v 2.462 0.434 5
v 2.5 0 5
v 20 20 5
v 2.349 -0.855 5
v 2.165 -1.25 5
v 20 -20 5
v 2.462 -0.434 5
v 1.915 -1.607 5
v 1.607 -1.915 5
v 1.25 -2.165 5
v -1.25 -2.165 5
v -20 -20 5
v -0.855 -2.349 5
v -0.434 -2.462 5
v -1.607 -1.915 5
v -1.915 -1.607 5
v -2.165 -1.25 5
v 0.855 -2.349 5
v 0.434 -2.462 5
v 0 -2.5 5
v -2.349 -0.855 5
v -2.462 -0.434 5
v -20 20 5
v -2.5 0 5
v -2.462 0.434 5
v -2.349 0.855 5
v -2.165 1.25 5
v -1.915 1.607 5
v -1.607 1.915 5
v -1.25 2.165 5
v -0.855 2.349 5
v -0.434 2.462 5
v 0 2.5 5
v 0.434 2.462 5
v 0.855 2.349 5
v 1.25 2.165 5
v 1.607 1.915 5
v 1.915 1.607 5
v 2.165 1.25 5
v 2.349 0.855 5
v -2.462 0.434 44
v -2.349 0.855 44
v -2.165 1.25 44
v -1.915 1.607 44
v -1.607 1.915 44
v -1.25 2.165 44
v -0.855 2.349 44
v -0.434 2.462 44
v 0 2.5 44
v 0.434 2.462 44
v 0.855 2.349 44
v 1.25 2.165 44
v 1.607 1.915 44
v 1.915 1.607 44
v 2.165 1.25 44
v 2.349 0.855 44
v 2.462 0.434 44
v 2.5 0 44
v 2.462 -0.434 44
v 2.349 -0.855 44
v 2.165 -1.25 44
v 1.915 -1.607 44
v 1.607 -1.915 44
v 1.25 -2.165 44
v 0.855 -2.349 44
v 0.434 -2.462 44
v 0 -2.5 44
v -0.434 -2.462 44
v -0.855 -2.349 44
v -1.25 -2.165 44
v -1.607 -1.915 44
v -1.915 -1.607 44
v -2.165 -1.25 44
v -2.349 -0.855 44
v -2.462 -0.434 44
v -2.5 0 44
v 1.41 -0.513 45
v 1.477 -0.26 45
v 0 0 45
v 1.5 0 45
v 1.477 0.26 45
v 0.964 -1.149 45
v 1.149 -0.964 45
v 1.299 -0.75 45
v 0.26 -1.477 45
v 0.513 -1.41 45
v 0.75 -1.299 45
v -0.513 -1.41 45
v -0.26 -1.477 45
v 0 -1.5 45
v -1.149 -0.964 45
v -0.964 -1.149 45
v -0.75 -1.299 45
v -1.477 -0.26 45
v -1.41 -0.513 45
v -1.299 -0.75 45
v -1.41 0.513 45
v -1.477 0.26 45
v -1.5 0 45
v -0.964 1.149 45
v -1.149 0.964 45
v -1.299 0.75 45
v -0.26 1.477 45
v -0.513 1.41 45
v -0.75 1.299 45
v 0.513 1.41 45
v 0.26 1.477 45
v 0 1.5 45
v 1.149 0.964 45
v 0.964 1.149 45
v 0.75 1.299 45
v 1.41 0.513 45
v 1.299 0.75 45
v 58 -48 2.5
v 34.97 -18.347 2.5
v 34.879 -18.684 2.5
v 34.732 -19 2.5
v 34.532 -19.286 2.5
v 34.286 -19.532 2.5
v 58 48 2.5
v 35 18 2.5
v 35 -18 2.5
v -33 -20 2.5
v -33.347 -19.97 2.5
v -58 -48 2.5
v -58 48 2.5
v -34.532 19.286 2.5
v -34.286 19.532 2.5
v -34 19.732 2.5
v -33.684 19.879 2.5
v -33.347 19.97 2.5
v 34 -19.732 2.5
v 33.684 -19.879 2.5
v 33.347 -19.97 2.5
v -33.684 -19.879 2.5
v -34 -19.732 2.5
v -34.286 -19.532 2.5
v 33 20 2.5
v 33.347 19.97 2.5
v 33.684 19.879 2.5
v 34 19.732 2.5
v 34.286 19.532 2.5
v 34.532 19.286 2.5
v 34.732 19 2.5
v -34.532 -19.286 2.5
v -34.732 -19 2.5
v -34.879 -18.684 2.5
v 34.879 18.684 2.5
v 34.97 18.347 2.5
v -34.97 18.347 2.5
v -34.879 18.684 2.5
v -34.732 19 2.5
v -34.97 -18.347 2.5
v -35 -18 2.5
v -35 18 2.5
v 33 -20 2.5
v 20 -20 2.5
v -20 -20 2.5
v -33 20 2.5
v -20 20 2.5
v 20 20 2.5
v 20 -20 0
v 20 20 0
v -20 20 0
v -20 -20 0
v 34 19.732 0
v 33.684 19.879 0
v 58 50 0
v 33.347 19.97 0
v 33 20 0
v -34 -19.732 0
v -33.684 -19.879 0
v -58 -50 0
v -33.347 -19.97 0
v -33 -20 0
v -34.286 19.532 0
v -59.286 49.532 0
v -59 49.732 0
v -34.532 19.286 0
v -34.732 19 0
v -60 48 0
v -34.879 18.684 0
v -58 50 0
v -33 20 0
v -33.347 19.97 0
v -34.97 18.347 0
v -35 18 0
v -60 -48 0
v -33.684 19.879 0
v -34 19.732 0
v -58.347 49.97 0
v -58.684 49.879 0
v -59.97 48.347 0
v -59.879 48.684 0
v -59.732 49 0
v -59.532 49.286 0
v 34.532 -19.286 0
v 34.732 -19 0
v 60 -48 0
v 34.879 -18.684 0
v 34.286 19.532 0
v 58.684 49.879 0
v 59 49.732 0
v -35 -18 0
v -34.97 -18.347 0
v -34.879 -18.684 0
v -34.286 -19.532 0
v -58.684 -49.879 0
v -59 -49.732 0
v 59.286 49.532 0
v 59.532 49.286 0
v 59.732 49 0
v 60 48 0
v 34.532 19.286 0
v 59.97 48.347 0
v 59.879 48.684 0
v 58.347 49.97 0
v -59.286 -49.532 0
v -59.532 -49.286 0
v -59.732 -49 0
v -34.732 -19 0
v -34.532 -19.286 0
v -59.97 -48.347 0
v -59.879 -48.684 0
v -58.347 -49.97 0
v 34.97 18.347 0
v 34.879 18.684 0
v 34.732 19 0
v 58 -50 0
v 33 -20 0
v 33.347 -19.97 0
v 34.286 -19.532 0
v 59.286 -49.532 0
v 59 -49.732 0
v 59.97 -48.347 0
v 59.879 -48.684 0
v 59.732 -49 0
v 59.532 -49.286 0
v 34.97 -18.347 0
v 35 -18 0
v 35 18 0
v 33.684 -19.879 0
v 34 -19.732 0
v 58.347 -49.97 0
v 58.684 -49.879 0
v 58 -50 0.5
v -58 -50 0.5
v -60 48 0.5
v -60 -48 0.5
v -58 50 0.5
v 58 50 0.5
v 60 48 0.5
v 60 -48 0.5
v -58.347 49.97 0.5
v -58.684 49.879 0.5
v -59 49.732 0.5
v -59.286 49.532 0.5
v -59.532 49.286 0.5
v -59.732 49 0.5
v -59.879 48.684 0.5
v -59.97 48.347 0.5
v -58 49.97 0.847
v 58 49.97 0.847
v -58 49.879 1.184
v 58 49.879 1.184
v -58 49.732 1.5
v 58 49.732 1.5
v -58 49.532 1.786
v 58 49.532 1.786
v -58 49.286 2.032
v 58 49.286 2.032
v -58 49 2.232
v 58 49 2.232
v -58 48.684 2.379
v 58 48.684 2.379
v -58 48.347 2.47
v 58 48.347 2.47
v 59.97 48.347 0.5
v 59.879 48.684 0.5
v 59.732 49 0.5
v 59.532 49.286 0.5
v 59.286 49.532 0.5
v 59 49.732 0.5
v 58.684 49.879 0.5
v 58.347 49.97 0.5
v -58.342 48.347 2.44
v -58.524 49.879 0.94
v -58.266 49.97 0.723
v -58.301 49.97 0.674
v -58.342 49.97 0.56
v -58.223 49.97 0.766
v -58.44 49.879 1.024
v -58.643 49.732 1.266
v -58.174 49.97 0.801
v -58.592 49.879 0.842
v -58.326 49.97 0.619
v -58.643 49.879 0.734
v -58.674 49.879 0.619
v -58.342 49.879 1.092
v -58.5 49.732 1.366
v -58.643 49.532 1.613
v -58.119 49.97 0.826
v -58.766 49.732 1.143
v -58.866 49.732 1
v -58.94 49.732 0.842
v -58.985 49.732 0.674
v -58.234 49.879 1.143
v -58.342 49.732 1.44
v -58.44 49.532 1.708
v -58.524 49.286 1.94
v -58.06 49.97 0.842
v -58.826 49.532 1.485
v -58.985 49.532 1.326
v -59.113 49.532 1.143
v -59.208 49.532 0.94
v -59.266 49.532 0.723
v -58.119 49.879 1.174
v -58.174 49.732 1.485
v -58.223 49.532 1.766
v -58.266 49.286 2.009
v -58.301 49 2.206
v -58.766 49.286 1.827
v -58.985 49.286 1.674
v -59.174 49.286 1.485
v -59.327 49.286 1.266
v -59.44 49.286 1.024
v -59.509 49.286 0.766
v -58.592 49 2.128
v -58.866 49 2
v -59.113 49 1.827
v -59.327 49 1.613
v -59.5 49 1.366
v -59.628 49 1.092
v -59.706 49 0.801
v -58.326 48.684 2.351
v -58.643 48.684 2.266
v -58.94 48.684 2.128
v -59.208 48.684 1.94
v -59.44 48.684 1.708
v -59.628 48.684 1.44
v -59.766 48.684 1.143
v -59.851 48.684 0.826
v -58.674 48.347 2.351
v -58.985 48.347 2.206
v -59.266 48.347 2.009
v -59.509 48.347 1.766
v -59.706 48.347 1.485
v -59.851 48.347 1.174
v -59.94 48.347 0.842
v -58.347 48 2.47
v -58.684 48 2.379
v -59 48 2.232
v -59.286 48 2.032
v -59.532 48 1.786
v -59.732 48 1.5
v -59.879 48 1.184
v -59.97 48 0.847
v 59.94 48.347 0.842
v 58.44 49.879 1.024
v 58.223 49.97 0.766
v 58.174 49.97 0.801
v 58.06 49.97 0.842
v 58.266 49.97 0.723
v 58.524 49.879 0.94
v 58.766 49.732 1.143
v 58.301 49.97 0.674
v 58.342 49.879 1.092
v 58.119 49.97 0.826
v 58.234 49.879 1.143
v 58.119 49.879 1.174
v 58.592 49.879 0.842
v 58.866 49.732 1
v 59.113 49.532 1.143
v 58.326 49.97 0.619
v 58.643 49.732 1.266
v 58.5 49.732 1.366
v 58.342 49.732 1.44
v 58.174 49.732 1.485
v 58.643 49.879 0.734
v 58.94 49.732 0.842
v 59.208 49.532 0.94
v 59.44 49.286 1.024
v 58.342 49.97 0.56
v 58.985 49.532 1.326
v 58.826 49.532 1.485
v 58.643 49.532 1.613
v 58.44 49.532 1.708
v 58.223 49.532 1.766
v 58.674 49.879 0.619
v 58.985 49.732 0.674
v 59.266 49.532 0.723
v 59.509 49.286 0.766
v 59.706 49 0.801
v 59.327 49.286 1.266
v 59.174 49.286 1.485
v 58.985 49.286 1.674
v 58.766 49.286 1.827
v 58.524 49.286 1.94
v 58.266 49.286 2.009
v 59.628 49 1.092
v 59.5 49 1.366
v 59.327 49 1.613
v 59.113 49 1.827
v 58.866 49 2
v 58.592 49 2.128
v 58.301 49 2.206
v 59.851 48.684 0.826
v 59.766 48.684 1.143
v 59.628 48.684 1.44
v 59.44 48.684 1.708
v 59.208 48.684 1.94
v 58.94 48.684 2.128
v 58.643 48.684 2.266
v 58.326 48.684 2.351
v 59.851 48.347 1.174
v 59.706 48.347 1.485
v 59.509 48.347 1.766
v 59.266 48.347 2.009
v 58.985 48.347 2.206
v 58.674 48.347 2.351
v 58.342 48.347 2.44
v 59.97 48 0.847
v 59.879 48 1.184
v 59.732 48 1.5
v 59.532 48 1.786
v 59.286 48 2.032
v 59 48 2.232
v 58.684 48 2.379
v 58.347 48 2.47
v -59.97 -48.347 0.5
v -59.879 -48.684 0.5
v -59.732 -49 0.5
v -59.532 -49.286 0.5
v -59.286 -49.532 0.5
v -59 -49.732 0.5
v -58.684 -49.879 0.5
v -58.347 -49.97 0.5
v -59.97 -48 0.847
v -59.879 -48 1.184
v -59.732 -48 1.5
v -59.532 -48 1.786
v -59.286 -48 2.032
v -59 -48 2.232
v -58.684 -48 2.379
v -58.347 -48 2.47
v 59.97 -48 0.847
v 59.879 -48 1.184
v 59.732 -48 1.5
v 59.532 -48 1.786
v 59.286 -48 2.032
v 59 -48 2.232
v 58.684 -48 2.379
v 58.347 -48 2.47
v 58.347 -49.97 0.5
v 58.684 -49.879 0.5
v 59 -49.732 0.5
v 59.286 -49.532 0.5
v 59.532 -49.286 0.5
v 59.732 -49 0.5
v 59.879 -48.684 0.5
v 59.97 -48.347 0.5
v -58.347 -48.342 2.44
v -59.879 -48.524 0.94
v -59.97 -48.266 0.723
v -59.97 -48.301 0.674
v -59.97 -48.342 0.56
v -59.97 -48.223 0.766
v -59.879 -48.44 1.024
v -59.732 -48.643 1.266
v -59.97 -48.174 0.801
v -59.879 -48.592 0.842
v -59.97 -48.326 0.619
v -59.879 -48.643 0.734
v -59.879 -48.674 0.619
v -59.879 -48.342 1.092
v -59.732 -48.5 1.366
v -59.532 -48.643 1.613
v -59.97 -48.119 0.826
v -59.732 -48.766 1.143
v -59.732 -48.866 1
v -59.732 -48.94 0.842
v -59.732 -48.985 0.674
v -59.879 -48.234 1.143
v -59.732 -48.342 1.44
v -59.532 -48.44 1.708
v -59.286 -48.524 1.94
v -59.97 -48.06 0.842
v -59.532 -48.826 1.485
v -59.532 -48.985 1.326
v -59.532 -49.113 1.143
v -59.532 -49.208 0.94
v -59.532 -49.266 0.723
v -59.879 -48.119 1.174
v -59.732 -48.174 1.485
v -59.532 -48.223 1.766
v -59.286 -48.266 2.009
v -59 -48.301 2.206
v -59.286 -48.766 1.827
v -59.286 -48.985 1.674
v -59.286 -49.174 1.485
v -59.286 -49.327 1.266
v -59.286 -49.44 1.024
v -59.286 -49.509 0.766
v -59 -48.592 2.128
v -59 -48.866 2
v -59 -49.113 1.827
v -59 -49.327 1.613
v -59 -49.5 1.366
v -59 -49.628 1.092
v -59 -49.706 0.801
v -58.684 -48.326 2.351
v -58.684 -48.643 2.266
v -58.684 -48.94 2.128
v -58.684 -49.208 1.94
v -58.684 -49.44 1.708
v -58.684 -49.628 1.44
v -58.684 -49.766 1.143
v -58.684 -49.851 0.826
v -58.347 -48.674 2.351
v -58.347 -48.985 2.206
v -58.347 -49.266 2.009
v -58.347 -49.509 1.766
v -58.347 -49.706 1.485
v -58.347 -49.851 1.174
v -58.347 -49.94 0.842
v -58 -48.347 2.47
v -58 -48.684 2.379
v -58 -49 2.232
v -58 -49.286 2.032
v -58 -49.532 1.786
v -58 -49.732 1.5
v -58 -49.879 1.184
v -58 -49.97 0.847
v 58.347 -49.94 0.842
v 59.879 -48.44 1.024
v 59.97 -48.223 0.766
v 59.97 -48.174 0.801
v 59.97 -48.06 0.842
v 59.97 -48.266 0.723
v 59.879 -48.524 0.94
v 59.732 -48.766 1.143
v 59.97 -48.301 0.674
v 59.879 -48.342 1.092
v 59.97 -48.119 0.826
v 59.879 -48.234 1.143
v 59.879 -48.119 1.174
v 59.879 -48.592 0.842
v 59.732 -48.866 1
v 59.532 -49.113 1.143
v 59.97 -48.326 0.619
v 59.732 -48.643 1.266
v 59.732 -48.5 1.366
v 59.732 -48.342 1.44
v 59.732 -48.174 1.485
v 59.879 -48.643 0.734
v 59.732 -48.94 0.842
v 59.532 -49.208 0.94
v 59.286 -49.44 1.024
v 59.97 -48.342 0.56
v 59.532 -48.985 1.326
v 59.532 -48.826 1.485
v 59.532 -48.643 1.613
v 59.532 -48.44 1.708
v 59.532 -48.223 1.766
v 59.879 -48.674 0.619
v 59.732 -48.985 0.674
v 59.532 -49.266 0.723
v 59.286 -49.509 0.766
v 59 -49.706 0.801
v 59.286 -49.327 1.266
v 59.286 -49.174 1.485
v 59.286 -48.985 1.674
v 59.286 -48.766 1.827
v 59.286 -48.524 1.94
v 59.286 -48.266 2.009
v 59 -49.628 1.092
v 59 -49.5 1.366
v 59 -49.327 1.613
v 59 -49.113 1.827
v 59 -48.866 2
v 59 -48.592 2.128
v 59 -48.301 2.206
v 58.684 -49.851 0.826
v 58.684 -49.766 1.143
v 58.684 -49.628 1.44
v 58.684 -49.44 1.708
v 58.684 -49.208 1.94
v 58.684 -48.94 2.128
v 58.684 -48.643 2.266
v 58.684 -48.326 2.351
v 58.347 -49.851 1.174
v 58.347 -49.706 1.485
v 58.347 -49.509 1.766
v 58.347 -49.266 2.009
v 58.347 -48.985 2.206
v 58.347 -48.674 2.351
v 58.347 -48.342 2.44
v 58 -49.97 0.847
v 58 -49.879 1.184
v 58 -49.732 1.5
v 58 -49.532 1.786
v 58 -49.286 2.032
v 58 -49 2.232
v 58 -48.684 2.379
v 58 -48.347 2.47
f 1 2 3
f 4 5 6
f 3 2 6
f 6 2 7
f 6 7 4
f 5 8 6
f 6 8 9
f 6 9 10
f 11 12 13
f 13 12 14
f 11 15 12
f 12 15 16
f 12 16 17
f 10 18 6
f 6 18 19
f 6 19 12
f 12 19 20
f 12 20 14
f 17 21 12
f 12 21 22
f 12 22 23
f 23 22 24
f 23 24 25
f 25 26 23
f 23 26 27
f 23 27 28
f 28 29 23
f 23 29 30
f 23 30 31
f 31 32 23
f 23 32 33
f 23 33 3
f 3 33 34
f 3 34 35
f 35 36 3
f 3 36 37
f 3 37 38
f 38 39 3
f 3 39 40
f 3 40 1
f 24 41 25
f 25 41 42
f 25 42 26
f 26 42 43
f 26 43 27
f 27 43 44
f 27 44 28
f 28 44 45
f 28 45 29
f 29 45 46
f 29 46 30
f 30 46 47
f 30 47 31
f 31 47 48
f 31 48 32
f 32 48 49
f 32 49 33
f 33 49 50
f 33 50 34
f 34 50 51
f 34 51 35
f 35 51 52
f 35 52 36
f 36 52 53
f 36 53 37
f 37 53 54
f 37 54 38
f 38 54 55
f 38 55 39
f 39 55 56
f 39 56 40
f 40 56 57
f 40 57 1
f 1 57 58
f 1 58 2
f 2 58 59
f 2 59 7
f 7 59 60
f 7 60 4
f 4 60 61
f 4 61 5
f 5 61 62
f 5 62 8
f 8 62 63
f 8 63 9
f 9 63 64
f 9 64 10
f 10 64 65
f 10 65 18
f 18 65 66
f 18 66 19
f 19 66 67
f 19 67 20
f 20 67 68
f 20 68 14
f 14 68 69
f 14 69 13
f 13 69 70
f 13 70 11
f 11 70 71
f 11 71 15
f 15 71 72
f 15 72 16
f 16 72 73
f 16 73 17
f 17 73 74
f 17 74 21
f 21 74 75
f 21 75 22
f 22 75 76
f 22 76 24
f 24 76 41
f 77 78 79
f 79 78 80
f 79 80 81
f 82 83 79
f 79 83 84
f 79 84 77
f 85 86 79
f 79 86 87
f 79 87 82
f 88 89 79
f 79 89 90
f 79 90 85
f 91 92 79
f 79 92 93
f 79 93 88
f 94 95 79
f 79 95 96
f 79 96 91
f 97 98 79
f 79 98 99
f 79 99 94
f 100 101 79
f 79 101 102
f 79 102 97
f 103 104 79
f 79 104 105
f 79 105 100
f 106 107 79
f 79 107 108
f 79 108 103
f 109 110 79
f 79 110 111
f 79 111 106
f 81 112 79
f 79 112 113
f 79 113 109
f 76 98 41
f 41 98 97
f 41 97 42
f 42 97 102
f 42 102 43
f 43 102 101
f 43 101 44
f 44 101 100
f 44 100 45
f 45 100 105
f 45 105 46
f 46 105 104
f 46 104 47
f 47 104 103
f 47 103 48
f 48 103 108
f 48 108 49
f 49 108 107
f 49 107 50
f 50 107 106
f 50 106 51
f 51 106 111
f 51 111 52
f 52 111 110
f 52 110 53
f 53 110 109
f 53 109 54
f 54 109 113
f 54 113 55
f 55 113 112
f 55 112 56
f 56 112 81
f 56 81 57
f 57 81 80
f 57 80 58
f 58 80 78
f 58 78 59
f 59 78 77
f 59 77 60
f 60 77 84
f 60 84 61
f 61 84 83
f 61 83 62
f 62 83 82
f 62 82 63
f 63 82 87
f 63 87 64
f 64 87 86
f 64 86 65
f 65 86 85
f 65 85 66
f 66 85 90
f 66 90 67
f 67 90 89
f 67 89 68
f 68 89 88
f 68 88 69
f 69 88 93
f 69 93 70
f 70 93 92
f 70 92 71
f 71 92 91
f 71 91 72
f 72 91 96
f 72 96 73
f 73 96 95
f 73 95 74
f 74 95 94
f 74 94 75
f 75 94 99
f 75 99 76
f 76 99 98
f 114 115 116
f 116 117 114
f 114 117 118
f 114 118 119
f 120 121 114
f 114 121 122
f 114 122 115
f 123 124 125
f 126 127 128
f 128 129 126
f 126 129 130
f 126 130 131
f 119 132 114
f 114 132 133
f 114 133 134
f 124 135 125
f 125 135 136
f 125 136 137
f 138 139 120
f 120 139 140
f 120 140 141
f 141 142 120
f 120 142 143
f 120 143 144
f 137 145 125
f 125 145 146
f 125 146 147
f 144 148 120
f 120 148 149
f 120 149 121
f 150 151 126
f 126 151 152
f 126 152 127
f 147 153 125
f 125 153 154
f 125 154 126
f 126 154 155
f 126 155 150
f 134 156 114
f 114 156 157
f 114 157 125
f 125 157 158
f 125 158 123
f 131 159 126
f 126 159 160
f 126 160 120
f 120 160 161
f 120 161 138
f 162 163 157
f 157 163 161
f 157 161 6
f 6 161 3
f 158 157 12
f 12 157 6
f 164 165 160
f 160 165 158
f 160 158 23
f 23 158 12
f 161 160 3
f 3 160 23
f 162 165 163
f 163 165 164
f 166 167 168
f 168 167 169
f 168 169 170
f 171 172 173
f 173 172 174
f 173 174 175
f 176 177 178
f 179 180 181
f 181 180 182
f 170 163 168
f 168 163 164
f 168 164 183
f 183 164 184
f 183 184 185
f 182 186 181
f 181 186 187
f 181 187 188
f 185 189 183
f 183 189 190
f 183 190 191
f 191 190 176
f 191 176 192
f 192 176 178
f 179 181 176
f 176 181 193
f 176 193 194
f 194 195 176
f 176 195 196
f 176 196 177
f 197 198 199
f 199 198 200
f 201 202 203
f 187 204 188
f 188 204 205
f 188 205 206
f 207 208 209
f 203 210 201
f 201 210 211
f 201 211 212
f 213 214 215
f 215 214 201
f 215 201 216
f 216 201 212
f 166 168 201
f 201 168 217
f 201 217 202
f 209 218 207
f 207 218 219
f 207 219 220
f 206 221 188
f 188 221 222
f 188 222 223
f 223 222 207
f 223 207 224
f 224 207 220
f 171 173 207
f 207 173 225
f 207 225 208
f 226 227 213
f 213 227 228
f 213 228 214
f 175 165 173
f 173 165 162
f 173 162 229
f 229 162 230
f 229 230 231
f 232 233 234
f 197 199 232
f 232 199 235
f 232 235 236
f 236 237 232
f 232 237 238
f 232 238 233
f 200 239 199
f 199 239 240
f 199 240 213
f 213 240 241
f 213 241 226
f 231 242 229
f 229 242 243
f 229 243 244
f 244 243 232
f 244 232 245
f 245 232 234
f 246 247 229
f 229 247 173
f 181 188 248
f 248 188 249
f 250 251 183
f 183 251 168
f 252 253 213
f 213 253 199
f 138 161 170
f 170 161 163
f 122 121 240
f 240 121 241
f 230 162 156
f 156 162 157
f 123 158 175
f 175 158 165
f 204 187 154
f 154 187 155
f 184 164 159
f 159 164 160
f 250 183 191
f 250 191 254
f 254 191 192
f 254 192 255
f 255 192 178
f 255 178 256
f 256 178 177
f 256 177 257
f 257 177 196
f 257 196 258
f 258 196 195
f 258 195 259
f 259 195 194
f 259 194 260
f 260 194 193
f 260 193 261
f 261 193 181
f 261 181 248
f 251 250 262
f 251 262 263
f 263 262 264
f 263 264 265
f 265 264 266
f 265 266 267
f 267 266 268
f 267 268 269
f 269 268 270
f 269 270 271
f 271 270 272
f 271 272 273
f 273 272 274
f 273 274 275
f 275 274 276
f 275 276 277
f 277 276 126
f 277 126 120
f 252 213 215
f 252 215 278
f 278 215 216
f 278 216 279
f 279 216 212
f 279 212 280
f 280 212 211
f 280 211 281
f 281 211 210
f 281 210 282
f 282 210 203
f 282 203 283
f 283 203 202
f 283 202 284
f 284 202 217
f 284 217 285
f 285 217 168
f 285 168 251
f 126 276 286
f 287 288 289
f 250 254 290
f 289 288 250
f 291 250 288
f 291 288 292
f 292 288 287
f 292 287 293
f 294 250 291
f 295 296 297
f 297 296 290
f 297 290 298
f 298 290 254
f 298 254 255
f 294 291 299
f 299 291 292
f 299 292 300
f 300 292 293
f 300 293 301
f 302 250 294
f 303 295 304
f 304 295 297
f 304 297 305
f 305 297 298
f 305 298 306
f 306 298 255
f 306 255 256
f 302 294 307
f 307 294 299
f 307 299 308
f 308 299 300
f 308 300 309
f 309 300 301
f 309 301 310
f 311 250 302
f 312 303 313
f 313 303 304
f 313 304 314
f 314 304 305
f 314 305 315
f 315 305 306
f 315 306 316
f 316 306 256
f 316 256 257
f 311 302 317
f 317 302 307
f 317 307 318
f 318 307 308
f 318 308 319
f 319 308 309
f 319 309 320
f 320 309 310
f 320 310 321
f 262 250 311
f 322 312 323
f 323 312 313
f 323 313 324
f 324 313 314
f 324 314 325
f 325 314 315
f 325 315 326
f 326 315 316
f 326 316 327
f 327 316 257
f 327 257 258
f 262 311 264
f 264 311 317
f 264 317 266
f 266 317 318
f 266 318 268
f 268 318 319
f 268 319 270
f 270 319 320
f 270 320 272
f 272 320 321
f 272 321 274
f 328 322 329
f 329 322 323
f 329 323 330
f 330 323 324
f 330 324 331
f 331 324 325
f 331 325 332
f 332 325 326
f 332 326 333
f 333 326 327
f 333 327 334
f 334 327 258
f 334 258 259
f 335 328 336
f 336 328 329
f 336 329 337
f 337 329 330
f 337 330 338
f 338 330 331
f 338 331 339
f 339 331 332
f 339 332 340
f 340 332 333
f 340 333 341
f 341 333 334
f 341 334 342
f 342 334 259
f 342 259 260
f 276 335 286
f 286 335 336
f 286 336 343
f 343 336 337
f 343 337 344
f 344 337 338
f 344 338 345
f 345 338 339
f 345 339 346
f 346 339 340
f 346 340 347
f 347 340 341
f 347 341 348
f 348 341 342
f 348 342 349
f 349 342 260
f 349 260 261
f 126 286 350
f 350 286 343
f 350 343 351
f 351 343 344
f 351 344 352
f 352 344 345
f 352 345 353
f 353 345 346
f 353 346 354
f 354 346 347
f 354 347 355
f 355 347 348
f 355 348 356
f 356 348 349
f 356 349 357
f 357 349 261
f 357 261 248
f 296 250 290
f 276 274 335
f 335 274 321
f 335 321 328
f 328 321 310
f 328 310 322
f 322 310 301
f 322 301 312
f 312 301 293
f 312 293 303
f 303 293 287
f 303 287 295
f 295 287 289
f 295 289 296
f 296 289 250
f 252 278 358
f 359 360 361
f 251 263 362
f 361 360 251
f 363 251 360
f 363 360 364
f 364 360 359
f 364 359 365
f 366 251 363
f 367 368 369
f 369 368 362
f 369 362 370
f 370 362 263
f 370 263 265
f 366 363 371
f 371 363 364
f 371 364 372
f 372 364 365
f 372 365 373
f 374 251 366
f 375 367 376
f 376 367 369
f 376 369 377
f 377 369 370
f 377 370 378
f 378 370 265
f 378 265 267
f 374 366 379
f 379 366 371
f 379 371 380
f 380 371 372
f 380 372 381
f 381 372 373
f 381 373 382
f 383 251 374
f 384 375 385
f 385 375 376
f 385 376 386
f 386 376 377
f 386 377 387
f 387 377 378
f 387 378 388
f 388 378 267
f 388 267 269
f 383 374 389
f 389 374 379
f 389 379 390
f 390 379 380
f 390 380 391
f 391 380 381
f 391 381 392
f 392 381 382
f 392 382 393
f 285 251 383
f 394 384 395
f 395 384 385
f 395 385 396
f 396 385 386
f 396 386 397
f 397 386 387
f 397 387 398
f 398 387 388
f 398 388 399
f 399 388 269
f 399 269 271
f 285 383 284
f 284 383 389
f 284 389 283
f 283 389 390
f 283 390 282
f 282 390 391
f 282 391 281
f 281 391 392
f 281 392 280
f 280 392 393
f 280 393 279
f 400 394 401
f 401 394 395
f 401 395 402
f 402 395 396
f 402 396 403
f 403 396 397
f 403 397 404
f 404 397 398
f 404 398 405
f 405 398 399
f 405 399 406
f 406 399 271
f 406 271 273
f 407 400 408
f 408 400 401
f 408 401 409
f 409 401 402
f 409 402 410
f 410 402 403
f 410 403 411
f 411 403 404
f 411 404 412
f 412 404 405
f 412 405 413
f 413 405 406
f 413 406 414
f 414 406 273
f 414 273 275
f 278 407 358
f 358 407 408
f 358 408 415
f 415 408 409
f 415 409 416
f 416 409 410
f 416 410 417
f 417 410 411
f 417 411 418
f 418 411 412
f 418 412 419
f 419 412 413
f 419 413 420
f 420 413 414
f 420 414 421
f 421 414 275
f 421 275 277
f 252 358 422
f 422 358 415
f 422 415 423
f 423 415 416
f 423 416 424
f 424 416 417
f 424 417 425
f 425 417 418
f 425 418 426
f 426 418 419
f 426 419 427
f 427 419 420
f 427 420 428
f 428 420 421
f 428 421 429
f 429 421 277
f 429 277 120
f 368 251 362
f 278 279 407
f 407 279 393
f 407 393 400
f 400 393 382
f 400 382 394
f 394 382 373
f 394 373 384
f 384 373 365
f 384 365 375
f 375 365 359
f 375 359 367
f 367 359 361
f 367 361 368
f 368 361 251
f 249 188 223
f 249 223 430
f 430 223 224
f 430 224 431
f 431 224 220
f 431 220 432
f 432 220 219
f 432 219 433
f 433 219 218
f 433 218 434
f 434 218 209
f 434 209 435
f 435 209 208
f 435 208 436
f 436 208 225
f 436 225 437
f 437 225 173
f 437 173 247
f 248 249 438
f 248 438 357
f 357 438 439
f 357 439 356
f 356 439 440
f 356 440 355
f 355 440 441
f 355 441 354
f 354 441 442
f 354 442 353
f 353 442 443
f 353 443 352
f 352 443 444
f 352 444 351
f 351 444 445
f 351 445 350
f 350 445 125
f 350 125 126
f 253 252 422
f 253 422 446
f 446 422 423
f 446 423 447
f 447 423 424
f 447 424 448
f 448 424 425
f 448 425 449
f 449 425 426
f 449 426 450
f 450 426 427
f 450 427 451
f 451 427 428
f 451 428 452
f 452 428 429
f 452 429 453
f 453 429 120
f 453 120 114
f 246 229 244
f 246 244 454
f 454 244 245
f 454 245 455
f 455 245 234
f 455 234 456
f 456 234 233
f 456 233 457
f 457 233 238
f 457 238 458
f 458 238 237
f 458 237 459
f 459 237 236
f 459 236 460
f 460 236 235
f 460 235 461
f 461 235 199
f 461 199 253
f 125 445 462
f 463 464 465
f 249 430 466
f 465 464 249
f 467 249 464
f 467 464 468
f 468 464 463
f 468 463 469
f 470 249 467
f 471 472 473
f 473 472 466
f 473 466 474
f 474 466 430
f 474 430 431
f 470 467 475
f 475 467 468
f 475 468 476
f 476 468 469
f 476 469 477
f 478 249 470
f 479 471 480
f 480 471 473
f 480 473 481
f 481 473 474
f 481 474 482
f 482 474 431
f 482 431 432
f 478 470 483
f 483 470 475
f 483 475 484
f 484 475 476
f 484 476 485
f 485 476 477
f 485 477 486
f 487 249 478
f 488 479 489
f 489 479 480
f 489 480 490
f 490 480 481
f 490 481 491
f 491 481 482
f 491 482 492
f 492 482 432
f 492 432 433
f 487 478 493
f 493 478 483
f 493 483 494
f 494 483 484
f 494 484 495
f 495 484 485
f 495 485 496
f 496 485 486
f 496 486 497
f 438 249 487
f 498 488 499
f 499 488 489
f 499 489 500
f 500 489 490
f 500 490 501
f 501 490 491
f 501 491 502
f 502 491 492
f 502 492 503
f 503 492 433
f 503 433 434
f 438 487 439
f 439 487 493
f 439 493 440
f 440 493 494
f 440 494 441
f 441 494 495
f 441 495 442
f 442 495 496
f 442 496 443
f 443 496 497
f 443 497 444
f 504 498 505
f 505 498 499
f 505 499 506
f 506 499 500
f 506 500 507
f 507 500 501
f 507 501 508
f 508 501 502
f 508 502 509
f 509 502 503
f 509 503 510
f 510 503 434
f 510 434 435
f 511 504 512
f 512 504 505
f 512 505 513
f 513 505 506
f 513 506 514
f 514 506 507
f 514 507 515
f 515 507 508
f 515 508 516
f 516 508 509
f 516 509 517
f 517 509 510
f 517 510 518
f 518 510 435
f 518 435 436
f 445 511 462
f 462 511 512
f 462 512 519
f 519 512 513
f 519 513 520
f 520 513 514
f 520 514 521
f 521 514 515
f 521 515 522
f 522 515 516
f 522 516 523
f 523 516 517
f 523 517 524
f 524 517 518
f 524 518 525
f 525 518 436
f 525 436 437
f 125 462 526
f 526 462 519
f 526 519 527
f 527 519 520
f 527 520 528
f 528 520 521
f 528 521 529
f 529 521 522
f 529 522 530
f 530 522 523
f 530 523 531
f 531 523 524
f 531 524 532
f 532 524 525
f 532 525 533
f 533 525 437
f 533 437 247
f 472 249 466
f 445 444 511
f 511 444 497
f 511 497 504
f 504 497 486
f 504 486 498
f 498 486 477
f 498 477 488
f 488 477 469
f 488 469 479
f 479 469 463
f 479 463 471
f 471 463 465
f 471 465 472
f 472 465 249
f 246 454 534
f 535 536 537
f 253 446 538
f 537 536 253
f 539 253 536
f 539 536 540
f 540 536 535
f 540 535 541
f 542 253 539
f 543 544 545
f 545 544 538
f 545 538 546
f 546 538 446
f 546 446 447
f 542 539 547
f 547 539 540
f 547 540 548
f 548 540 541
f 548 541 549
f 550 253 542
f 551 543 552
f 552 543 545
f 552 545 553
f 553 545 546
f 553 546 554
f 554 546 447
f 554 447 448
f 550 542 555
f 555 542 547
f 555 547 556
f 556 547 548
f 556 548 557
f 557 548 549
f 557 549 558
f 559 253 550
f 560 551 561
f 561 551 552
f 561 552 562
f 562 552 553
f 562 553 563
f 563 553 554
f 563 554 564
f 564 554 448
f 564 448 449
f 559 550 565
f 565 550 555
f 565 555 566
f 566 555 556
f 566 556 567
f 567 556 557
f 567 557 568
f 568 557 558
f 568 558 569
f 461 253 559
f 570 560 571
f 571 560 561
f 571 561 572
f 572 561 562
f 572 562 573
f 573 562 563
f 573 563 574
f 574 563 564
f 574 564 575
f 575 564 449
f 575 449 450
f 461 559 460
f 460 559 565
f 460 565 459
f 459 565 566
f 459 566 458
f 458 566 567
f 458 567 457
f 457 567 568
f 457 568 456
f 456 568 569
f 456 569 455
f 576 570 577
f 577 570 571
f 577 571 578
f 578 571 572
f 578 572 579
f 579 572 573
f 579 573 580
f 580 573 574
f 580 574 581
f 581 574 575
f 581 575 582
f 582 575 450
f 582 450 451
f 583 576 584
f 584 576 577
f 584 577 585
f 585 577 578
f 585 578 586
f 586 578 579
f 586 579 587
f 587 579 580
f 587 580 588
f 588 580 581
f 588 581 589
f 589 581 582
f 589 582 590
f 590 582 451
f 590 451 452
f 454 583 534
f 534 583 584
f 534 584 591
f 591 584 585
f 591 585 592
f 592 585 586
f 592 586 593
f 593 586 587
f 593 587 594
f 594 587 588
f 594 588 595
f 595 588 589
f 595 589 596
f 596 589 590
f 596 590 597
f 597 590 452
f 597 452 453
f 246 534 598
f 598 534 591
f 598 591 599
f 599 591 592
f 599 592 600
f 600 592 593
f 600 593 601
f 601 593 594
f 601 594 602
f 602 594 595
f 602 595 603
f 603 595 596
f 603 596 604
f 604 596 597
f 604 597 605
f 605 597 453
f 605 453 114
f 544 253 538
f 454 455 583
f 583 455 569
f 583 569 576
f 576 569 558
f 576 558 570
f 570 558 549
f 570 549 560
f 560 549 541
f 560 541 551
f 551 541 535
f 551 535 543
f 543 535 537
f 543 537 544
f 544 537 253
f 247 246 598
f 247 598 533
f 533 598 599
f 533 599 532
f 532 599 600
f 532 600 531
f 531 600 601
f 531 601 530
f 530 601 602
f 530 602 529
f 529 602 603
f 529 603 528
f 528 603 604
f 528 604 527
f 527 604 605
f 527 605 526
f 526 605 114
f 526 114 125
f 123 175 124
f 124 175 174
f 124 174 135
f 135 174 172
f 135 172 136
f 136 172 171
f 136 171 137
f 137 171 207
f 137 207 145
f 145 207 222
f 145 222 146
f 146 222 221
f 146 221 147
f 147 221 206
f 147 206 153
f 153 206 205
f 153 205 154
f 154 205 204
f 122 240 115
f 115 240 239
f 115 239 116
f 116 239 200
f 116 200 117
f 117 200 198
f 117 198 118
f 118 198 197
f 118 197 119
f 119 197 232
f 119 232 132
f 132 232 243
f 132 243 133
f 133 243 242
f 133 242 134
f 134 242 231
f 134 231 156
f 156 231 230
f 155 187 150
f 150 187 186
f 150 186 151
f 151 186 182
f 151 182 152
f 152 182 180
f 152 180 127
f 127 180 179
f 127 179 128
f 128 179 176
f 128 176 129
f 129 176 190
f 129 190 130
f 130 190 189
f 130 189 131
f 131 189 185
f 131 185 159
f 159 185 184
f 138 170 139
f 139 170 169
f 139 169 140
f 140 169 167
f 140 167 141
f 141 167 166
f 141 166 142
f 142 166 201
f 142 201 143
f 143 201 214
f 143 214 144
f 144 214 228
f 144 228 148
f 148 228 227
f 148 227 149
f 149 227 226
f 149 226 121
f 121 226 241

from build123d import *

# Parameters (mm, degrees)
SKETCH1_W           = 120
SKETCH1_H           = 100
SKETCH1_R           = 2.5
BOSS_EXTRUDE1_DEPTH = 5
SKETCH2_R           = 2.5
BOSS_EXTRUDE2_DEPTH = 45
CHAMFER1_SIZE       = 1
SKETCH3_W           = 120
SKETCH3_H           = 100
SKETCH3_W_2         = 40
SKETCH3_H_2         = 40
CUT_EXTRUDE1_DEPTH  = 2.5
SKETCH6_W           = 15
SKETCH6_H           = 40
CUT_EXTRUDE2_DEPTH  = 89.917096219
FILLET1_R           = 2
FILLET2_R           = 2


with BuildPart() as part:
    # Sketch1 → Boss-Extrude1 (new body)
    with BuildSketch(Plane.XY):
        Rectangle(SKETCH1_W, SKETCH1_H)
        Circle(SKETCH1_R, mode=Mode.SUBTRACT)
    extrude(amount=BOSS_EXTRUDE1_DEPTH)

    # Sketch2 → Boss-Extrude2 (add)
    with BuildSketch(Plane.XY):
        with Locations(Location((0, 0, 0), (0, 0, 180))):
            Circle(SKETCH2_R)
    extrude(amount=BOSS_EXTRUDE2_DEPTH)

    # Chamfer1
    chamfer1_edges = [part.edges().sort_by_distance(p)[0] for p in [
        (2.5, 0, 45),
    ]]
    chamfer(chamfer1_edges, length=CHAMFER1_SIZE)

    # Sketch3 → Cut-Extrude1 (cut)
    with BuildSketch(Plane.XY.offset(5)):
        Rectangle(SKETCH3_W, SKETCH3_H)
        Rectangle(SKETCH3_W_2, SKETCH3_H_2, mode=Mode.SUBTRACT)
    extrude(amount=-CUT_EXTRUDE1_DEPTH, mode=Mode.SUBTRACT)

    # Sketch6 → Cut-Extrude2 (cut, through all)
    with BuildSketch(Plane.XY.offset(2.5)):
        with Locations((-27.5, 0)):
            Rectangle(SKETCH6_W, SKETCH6_H)
        with Locations((27.5, 0)):
            Rectangle(SKETCH6_W, SKETCH6_H)
    extrude(amount=-CUT_EXTRUDE2_DEPTH, mode=Mode.SUBTRACT)

    # Fillet1
    fillet1_edges = [part.edges().sort_by_distance(p)[0] for p in [
        (60, -50, 1.25),
        (-60, -50, 1.25),
        (-60, 50, 1.25),
        (60, 50, 1.25),
        (60, 0, 2.5),
        (0, -50, 2.5),
        (-60, 0, 2.5),
        (0, 50, 2.5),
    ]]
    fillet(fillet1_edges, radius=FILLET1_R)

    # Fillet2
    fillet2_edges = [part.edges().sort_by_distance(p)[0] for p in [
        (-35, -20, 1.25),
        (-35, 20, 1.25),
        (35, 20, 1.25),
        (35, -20, 1.25),
    ]]
    fillet(fillet2_edges, radius=FILLET2_R)


solid = part.part
